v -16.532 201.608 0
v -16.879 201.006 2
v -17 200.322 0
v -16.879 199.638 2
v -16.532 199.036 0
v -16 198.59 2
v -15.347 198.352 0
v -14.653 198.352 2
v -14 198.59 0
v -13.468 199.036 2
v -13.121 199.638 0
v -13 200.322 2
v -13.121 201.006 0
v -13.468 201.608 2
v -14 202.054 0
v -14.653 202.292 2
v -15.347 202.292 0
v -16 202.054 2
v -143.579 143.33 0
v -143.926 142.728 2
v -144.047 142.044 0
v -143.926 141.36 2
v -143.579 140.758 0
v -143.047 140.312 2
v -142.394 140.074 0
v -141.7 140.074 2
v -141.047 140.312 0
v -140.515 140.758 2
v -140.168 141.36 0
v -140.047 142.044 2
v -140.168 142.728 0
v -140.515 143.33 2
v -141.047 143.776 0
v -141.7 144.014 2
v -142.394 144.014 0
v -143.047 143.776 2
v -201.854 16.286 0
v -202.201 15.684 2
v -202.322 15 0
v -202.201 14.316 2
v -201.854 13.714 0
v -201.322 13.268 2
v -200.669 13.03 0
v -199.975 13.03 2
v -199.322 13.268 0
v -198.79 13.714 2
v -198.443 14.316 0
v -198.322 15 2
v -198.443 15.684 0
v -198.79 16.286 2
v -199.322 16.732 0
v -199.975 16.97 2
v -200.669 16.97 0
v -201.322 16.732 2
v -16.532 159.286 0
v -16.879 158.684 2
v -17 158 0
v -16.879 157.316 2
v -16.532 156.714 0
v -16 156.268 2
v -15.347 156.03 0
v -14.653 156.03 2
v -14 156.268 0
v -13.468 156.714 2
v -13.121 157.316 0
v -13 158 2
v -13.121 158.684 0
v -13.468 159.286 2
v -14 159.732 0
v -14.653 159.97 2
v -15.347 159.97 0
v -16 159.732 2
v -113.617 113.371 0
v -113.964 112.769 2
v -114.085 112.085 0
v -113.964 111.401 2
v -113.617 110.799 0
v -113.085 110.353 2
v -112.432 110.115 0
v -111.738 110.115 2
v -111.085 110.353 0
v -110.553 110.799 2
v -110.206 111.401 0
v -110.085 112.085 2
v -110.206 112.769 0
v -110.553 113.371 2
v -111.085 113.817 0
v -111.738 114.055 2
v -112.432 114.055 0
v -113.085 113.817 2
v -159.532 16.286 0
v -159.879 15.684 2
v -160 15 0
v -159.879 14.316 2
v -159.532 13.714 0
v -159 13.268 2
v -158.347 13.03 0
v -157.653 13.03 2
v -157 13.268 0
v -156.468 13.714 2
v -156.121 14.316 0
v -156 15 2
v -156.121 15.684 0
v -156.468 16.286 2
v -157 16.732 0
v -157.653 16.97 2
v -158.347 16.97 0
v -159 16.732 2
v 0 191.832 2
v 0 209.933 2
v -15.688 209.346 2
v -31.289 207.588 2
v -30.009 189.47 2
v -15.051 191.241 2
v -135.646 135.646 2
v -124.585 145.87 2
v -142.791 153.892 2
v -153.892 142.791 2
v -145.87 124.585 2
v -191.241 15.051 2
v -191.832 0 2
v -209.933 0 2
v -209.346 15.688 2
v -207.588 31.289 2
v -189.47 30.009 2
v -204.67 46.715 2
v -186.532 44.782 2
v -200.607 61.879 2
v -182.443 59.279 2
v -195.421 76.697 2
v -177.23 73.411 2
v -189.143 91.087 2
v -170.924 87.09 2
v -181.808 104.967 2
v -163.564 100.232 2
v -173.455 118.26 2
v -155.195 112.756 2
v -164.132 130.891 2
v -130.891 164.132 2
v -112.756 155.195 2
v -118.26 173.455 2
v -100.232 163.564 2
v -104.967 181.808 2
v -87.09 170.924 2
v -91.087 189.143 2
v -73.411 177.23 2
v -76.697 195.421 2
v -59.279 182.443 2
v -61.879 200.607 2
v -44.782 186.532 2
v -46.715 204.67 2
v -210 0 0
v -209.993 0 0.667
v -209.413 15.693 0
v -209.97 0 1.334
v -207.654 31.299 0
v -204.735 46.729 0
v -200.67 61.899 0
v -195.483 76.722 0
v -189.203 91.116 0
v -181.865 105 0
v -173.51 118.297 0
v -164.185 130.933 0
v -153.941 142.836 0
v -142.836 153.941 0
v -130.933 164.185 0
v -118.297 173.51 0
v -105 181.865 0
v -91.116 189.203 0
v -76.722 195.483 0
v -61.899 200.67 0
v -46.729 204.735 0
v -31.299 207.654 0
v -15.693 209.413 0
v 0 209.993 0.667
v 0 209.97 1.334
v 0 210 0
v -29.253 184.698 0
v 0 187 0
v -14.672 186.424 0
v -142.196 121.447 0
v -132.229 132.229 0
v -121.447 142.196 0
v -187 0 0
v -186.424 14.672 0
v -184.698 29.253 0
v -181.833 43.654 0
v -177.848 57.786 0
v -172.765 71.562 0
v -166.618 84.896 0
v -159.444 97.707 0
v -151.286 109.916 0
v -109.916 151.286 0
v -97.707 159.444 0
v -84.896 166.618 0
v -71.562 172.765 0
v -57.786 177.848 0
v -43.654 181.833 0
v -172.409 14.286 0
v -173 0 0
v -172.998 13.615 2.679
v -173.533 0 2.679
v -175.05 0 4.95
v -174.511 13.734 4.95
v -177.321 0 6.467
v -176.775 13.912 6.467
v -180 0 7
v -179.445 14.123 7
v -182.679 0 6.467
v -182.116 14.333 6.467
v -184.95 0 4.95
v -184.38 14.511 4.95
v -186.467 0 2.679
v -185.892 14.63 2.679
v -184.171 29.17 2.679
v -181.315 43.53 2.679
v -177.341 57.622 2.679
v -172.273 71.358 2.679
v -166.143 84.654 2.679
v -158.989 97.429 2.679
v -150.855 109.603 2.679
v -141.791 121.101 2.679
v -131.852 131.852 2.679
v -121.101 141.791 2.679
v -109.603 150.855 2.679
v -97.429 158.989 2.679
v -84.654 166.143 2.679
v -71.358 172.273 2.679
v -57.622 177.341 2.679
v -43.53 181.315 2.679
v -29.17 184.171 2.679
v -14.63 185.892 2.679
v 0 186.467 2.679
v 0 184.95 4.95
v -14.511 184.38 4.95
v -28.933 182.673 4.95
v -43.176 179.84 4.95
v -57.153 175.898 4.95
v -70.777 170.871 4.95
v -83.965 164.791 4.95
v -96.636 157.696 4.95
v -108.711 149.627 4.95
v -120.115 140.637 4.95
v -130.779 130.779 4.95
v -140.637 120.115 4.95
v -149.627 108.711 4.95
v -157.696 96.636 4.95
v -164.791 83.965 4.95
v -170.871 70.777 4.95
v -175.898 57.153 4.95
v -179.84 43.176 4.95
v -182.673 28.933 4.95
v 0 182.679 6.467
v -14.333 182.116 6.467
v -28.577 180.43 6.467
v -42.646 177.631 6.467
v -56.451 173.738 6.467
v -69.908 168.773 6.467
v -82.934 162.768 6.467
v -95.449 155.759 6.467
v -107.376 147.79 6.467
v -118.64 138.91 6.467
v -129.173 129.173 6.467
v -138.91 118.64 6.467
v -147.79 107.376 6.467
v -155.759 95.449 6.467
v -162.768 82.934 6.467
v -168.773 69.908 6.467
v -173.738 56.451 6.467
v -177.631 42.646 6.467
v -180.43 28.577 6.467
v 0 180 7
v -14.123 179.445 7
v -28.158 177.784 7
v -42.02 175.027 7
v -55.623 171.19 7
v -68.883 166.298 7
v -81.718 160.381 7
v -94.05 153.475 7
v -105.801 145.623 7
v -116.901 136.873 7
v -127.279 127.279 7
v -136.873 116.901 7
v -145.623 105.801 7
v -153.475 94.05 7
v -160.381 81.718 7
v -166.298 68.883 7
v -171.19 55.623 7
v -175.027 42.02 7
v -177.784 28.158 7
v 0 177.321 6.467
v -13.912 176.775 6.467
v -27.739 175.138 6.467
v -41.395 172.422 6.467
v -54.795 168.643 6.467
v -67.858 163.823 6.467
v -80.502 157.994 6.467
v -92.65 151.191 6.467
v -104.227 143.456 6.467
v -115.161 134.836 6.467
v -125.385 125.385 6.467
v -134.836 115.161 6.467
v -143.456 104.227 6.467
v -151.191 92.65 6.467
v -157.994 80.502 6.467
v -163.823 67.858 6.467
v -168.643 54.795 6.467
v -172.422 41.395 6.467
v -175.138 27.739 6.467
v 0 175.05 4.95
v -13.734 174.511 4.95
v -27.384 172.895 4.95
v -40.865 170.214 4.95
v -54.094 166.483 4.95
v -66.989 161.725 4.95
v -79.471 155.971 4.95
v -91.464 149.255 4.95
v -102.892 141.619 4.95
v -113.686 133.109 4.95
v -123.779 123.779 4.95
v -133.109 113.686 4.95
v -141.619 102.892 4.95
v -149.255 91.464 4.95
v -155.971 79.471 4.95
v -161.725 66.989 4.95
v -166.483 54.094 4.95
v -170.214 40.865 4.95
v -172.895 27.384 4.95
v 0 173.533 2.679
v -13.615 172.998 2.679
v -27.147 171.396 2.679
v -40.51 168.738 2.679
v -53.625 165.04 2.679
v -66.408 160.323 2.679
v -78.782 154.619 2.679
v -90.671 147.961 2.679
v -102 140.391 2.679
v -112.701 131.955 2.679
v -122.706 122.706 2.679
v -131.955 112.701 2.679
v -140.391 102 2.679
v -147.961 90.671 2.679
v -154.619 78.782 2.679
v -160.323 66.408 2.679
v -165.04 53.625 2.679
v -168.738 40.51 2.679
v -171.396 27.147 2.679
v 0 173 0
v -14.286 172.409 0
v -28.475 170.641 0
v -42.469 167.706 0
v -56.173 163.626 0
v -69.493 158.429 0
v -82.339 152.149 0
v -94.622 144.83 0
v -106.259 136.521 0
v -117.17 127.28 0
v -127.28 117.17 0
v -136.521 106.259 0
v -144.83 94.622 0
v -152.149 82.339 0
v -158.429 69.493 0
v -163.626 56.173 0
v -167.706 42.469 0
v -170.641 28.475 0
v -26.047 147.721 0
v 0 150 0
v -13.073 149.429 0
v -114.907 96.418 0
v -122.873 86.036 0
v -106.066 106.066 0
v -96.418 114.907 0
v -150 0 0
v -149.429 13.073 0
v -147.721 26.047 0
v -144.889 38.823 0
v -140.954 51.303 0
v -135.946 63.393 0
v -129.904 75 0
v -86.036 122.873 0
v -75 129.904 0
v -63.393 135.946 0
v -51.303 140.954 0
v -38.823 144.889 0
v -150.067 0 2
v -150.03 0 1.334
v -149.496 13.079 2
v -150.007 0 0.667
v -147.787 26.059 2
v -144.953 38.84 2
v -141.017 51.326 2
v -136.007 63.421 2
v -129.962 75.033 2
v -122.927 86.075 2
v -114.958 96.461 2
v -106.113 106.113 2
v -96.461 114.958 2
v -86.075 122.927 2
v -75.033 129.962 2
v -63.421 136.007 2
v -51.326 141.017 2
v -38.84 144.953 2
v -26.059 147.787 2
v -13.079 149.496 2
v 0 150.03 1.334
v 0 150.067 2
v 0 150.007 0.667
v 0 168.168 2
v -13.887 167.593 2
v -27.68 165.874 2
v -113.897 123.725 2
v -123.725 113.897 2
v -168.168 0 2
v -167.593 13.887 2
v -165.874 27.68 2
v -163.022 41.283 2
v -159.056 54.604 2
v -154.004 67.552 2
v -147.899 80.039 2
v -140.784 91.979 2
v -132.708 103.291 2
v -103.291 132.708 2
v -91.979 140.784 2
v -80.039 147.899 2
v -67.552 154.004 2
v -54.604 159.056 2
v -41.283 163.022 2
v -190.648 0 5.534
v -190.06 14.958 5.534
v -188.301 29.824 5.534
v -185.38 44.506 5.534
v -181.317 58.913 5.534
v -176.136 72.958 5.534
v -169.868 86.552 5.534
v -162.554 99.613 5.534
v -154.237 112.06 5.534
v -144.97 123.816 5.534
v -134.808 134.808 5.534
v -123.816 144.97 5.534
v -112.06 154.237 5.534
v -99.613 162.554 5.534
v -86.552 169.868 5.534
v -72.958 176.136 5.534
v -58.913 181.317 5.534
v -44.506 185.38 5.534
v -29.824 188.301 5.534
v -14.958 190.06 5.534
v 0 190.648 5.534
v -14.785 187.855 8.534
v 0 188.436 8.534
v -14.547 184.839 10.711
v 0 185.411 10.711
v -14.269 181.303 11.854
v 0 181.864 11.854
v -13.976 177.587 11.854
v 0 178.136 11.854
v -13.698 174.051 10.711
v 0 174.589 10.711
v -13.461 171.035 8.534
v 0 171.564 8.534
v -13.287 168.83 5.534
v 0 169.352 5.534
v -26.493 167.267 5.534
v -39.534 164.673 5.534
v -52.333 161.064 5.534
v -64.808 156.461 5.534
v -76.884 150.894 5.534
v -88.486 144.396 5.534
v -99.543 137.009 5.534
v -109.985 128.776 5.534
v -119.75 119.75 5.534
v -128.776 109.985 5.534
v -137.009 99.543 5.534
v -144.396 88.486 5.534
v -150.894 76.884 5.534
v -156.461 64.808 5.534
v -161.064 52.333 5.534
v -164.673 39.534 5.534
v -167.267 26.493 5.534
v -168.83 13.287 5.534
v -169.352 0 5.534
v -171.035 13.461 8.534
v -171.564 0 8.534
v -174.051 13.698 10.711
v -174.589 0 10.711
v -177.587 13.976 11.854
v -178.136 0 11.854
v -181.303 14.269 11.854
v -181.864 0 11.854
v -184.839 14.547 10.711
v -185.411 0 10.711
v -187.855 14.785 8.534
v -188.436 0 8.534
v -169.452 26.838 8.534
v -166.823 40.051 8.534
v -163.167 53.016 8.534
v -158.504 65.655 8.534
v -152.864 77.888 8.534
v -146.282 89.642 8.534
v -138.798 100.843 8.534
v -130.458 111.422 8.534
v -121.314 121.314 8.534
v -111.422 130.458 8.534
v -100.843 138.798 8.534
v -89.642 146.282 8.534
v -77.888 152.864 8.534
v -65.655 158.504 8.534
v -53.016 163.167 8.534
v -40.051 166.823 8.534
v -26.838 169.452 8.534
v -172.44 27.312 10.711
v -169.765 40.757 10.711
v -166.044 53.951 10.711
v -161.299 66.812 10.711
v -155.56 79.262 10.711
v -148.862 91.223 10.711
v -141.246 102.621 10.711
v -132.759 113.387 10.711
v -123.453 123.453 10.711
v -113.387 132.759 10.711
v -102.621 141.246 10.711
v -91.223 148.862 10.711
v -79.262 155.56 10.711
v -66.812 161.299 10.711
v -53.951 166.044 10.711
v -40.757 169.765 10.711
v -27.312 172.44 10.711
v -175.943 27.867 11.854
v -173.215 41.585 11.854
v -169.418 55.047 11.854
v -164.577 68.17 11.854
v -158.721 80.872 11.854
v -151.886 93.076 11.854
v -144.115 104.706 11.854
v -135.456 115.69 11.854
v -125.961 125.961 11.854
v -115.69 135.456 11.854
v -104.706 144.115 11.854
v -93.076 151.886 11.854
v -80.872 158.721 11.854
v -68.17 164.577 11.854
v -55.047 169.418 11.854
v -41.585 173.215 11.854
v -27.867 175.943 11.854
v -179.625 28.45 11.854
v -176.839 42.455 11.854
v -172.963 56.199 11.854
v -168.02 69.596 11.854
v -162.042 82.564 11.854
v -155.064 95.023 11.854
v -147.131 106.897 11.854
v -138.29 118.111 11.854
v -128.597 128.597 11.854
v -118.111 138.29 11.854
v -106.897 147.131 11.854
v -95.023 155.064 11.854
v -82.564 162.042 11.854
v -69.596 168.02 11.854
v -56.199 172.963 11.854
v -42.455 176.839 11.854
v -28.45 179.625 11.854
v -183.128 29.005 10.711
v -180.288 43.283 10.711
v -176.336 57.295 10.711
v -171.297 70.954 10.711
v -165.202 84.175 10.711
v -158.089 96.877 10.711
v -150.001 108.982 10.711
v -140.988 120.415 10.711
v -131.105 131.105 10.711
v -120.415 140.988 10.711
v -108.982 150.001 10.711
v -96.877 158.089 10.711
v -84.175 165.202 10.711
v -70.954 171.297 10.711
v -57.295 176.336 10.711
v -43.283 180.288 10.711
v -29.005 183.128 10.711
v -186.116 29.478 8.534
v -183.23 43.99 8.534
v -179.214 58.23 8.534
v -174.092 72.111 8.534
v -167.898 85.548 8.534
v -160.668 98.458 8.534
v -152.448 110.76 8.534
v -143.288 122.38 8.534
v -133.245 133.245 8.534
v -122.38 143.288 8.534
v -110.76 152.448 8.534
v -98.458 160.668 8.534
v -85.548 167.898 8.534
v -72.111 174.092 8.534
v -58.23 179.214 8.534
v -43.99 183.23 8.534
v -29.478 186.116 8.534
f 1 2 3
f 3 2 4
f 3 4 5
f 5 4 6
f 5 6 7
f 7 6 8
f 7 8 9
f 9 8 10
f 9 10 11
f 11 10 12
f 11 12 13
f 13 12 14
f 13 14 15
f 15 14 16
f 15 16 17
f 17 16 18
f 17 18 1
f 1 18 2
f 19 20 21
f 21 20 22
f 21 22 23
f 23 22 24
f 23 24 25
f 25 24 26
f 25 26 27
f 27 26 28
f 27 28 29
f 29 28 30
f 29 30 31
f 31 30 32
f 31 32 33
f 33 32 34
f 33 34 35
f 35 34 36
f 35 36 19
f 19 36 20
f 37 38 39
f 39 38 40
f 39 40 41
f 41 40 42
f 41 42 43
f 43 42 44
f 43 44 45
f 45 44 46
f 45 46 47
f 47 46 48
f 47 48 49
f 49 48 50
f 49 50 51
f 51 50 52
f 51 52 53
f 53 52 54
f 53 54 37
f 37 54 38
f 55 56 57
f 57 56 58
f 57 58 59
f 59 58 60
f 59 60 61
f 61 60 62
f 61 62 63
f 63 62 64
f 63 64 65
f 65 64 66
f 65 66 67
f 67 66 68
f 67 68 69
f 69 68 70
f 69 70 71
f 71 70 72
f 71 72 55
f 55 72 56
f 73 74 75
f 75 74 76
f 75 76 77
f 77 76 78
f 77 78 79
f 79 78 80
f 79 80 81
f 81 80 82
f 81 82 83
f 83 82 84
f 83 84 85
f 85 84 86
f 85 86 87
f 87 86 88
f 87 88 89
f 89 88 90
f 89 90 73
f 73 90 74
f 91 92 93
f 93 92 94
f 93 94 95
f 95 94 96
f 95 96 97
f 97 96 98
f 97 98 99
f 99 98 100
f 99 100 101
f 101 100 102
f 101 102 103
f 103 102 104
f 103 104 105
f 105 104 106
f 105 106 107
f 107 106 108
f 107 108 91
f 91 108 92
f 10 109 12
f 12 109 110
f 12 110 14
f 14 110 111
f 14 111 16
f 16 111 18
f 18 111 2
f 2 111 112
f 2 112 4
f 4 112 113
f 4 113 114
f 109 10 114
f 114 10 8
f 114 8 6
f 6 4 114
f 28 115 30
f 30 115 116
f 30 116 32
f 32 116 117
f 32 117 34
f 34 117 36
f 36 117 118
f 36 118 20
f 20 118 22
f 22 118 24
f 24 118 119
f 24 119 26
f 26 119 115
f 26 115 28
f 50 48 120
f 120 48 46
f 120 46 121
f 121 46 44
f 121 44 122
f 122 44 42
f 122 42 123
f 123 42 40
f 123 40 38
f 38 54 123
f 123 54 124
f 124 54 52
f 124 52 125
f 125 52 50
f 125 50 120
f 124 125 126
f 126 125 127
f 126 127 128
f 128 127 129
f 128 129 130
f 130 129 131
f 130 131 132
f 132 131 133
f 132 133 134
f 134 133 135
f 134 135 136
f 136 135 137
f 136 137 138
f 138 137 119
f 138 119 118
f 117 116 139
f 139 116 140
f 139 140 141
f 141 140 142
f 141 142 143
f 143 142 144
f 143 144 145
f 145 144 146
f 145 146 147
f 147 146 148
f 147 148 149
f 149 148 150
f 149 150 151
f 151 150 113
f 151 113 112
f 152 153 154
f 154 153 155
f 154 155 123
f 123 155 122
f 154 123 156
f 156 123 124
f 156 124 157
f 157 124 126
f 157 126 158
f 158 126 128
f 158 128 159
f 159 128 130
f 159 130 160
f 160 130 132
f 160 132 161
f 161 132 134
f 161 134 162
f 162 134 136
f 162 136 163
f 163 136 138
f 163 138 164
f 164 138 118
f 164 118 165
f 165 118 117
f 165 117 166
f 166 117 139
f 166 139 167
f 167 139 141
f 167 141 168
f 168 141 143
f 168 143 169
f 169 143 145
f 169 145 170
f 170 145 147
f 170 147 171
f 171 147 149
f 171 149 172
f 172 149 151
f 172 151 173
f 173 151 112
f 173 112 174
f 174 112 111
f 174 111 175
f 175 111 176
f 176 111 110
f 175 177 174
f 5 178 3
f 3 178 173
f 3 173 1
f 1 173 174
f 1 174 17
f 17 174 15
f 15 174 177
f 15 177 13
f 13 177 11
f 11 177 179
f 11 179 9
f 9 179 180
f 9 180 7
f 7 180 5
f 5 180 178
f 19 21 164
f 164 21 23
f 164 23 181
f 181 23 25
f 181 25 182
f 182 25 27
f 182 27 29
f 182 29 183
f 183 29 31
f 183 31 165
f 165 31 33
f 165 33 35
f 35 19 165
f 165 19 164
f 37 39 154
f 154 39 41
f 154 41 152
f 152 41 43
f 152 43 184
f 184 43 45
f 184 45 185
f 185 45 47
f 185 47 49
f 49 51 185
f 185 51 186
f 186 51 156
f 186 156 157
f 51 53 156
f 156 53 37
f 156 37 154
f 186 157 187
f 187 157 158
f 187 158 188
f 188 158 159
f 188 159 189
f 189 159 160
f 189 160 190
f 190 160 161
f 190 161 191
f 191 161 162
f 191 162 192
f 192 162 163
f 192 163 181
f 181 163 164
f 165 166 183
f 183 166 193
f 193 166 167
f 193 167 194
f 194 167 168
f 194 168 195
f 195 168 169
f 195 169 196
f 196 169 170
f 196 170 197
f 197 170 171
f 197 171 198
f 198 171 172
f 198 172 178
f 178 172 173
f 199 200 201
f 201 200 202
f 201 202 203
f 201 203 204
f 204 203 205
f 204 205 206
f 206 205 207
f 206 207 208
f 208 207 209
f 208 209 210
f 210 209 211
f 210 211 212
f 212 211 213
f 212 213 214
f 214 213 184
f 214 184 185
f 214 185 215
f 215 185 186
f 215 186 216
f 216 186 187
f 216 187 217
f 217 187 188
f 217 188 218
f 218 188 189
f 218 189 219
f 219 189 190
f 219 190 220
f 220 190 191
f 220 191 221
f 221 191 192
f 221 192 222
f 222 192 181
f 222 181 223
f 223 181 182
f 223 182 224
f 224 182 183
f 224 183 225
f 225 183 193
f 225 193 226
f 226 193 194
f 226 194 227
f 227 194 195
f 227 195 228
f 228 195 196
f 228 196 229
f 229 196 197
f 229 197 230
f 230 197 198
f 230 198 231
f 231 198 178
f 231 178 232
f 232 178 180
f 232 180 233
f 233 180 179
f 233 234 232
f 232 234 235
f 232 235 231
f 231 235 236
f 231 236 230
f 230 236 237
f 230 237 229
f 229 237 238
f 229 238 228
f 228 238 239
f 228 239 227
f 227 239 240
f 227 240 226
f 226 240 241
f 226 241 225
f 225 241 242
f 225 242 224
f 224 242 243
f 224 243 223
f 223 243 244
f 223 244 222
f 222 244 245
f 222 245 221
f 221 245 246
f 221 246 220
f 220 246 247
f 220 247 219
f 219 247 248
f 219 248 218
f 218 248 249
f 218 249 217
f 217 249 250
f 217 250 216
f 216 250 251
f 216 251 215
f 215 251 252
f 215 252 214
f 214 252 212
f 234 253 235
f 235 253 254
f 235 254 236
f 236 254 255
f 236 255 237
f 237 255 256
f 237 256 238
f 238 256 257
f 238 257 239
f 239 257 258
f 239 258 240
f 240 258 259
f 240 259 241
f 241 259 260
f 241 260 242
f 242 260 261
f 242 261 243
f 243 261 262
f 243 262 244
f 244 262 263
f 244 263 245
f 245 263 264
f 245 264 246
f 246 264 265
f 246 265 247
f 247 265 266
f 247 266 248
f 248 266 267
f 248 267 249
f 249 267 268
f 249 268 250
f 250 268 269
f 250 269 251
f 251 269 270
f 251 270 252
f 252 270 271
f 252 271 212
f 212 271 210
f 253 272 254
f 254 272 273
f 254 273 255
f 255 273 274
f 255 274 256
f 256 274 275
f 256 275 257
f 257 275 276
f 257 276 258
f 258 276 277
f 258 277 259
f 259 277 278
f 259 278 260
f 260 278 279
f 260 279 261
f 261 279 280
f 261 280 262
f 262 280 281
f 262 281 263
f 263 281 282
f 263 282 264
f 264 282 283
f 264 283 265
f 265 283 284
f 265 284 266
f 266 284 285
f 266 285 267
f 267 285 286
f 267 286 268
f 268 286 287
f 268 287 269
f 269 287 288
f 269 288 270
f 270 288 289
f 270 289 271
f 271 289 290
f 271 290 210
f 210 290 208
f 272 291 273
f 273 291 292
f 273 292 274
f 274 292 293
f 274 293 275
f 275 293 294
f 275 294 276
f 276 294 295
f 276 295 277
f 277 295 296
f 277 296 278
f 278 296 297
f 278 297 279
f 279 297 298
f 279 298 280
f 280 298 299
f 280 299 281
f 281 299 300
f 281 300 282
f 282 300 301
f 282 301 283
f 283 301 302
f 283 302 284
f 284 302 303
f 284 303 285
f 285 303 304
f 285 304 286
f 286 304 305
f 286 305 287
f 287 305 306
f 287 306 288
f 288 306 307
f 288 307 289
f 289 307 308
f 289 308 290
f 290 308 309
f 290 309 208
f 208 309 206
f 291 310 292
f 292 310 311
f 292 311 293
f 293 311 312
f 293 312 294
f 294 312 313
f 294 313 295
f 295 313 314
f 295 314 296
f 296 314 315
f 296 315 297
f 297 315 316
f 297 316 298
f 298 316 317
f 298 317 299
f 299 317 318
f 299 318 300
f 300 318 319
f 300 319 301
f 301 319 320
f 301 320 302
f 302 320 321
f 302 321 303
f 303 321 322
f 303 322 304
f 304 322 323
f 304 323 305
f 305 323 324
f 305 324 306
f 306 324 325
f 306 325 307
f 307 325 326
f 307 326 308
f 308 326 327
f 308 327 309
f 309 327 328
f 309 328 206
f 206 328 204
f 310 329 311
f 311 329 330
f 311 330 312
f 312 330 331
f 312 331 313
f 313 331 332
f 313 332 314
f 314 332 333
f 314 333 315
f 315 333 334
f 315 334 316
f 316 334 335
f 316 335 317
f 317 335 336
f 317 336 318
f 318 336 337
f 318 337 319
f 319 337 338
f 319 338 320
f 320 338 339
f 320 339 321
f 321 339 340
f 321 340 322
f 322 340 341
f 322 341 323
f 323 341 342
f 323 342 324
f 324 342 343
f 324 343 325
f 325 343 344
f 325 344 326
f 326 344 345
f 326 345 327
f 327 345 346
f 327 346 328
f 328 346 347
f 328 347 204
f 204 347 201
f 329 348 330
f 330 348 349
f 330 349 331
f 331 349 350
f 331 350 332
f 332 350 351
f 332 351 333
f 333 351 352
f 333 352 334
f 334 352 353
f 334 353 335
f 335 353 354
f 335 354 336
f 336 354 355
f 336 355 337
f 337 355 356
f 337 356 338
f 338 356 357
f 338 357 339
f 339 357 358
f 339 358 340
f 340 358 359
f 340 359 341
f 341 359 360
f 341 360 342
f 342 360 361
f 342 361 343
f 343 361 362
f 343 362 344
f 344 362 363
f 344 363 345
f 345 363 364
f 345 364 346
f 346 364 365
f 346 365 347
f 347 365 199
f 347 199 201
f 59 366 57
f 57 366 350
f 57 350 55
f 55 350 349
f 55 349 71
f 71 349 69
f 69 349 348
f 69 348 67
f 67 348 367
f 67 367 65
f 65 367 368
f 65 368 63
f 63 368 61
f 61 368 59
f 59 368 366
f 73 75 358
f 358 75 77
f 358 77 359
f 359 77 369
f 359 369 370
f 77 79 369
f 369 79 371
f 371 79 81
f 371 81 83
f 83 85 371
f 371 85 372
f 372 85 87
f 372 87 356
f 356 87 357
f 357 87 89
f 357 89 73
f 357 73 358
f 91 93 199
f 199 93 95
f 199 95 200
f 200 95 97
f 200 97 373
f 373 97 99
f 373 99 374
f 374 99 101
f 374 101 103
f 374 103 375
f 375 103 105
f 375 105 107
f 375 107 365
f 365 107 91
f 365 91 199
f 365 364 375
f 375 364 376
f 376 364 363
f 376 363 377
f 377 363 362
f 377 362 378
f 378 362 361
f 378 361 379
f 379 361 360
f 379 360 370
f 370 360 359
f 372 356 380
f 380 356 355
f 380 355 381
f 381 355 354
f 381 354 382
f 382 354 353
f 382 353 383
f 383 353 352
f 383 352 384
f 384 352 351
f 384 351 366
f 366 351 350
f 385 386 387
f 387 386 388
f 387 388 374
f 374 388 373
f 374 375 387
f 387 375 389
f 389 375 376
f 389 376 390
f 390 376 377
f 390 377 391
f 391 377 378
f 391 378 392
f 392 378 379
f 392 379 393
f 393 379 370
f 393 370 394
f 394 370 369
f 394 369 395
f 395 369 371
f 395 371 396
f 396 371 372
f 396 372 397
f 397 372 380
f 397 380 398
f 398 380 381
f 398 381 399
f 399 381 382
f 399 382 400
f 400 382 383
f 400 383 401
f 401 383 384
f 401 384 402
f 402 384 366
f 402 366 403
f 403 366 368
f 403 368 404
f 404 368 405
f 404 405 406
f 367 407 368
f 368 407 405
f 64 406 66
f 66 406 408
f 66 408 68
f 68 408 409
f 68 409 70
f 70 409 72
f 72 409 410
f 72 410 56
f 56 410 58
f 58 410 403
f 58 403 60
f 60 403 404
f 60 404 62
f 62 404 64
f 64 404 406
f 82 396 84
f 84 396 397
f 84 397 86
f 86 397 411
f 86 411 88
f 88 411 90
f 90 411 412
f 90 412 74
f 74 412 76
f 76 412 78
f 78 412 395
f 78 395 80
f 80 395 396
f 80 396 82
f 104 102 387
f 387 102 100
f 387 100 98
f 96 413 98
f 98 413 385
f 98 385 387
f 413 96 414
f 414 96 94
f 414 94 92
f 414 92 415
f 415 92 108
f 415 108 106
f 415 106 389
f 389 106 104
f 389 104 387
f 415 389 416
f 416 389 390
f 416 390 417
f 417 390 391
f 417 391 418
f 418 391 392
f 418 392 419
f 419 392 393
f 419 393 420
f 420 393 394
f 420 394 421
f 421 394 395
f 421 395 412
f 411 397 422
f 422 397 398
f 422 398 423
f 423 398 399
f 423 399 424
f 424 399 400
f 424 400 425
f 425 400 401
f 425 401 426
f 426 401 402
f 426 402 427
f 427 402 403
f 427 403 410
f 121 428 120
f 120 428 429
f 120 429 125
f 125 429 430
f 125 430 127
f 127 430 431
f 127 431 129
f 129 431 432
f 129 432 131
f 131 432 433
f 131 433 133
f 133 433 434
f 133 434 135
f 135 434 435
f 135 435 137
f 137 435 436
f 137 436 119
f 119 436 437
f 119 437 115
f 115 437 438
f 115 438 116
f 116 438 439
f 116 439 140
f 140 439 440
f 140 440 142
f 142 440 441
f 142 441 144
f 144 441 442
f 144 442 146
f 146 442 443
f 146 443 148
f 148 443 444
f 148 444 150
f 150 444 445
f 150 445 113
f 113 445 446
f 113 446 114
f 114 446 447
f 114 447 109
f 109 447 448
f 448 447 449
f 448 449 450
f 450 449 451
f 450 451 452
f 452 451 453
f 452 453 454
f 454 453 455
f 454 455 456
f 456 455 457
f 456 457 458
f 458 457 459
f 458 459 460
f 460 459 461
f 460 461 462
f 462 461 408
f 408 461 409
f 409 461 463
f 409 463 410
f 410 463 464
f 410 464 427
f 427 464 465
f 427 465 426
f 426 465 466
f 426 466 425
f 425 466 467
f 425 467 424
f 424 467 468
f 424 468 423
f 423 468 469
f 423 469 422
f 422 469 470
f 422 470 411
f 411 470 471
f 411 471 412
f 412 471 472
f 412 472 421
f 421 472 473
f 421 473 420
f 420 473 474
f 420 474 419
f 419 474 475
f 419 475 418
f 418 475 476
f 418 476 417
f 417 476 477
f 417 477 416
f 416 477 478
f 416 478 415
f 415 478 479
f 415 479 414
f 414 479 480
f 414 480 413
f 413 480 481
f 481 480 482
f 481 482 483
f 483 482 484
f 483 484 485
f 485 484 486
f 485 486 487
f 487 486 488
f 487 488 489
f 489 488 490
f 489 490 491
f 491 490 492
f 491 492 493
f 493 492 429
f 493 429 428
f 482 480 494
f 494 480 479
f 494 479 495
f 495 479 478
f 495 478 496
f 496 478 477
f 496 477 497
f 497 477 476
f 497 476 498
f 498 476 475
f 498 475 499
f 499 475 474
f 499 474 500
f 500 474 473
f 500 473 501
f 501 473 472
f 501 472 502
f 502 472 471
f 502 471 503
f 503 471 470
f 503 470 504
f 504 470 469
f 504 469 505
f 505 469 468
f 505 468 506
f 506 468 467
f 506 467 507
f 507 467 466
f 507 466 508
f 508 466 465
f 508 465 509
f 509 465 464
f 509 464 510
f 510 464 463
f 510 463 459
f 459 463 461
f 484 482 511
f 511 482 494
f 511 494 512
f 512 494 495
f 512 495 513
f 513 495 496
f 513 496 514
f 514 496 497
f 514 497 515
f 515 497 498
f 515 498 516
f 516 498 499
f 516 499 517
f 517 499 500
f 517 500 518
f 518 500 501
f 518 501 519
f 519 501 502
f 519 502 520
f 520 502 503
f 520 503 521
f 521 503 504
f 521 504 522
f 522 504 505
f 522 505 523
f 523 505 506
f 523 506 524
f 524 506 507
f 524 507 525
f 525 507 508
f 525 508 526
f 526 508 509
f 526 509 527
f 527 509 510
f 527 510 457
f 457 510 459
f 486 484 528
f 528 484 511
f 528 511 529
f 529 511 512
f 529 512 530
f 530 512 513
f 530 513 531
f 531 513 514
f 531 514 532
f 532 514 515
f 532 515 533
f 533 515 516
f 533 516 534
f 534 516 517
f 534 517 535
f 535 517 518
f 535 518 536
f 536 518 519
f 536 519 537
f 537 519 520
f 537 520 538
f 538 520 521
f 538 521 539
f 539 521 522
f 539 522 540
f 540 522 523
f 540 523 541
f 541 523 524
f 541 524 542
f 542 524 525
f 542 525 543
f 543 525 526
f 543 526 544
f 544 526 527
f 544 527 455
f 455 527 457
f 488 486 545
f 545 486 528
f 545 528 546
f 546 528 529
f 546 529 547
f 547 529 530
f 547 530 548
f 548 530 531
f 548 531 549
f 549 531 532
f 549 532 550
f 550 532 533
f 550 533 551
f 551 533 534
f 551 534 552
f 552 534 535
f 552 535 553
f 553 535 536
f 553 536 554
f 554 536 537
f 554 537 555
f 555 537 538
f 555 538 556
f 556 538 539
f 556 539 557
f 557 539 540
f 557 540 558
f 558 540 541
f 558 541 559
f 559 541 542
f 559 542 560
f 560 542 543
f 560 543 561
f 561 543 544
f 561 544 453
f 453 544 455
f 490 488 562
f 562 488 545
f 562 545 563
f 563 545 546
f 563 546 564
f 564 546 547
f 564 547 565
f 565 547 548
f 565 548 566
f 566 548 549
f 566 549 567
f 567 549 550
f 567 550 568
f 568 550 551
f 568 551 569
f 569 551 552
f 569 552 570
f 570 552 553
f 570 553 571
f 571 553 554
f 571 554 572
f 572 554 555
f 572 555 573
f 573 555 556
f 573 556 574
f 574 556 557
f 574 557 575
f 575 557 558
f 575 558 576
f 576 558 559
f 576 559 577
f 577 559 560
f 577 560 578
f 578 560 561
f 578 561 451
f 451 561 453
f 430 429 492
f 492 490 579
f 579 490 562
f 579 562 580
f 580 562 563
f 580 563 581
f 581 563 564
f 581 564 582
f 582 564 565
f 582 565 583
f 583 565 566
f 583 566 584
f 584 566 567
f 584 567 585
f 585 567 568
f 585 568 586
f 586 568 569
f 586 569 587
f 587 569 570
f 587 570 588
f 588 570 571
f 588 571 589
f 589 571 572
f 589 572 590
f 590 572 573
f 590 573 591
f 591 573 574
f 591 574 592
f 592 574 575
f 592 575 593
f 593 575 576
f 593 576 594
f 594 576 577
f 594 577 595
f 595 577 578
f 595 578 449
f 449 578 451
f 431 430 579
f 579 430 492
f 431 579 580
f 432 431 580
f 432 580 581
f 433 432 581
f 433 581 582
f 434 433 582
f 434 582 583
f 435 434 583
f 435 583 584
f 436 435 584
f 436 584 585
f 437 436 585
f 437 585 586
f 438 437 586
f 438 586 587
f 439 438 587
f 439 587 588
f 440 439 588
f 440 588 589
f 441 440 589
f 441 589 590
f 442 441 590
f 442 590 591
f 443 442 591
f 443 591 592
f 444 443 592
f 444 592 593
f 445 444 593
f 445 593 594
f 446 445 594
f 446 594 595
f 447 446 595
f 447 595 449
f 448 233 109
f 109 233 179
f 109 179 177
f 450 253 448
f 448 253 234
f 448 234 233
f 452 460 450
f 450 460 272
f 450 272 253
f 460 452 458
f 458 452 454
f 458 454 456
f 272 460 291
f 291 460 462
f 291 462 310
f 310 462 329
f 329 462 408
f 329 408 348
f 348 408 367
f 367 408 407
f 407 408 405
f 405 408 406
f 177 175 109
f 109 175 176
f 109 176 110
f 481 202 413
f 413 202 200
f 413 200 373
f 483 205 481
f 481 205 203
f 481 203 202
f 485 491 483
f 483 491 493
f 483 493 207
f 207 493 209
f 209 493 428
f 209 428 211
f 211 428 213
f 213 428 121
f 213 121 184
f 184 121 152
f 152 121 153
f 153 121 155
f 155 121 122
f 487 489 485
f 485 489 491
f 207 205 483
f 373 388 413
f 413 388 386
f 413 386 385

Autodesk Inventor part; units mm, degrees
ref_plane "YZ Plane" through (0, 0, 0) normal (1, 0, 0) x (0, 1, 0)
ref_plane "XZ Plane" through (0, 0, 0) normal (0, 1, 0) x (-1, 0, 0)
ref_plane "XY Plane" through (0, 0, 0) normal (0, 0, 1) x (1, 0, 0)
sketch "Skizze1" plane through (0, 0, 0) normal (0, 0, 1) x (1, 0, 0)
  arc A0 (0, 180) -> (-180, 0) centre (0, 0) ccw
  line L0 (-260.7351, 0) -> (43.4558, 0) projected
  line L1 (0, -43.4558) -> (0, 260.7351) projected
  dimension "d0" = 180
  dimension "d1" = 90
sketch "Skizze2" plane through (0, 0, 0) normal (0, 1, 0) x (-1, 0, 0)
  line L0 (0, -42) -> (0, 42) projected
  circle A0 centre (180, 0) radius 7
  line L1 (252, 0) -> (-42, 0) projected
  circle A1 centre (180, 0) radius 12
  line L2 (191.9553, 0) -> (168, 0)
  line L3 (173, 0) -> (160, 0)
  line L4 (173, 2) -> (173, 0)
  line L5 (187, 0) -> (200, 0)
  line L6 (187, 2) -> (187, 0)
  circle A2 centre (180, 0) radius 30
  line L7 (187, 2) -> (209.9333, 2)
  line L8 (173, 2) -> (150.0667, 2)
  point P0 (0, 0)
  point P1 (173, 0)
  point P2 (168, 0)
  point P3 (192, 0)
  point P4 (191.8322, 2)
  point P5 (168.1678, 2)
  point P6 (150, 0)
  point P7 (210, 0)
  dimension "d5" = 24
  dimension "d3" = 180
  dimension "d4" = 14
  dimension "d16" = 60
  dimension "d17" = 2
  dimension "d18" = 23
  dimension "d19" = 7
sweep "Sweeping1" add profiles "Skizze2" path "Skizze1" path curves A0 contours L6 L7 A1 L1 | A0 L4 L8 A1 L7 L6 | L1 A1 L8 L4 | L1 A2 L8 A1 | A1 L7 A2 L1
sketch "Skizze7" plane through (-168.1678, 0, 2) normal (0, 0, 1) x (1, 0, 0)
  line L0 (18.1678, 0) -> (18.1678, -3) projected
  line L1 (0, 0) -> (18.1011, 0) projected
  line L2 (168.1678, 150) -> (171.1678, 150) projected
  line L3 (168.1678, 168.1678) -> (168.1678, 150.0667) projected
  line L4 (168.1678, 210) -> (171.1678, 210) projected
  arc A0 (168.1678, 150.0667) -> (18.1011, 0) centre (168.1678, 0) ccw projected
  circle A1 centre (168.1678, 0) radius 168 projected
  line L5 (-41.8322, 0) -> (-41.8322, -3) projected
  point P0 (10.1678, 15)
  point P1 (56.0828, 112.085)
  point P2 (153.1678, 158)
  dimension "d36" = 8
  dimension "d37" = 15
  dimension "d38" = 8
  dimension "d39" = 15
  dimension "d41" = 97.915
  dimension "d42" = 97.915
hole "Bohrung1" at (-158, 15, 2) at (-112.085, 112.085, 2) at (-15, 158, 2) direction (0, 0, -1) diameter 4 depth 8
sketch "Skizze8" plane through (-209.9333, 0, 2) normal (0, 0, 1) x (1, 0, 0)
  line L0 (-0.0667, 0) -> (-0.0667, -3) projected
  line L1 (0, 0) -> (18.1011, 0) projected
  line L2 (209.9333, 209.9333) -> (209.9333, 191.8322) projected
  line L3 (209.9333, 210) -> (212.9333, 210) projected
  arc A0 (209.9333, 168.1678) -> (41.7654, 0) centre (209.9333, 0) ccw projected
  circle A1 centre (209.9333, 0) radius 200.8827
  point P0 (209.9333, 0)
  point P1 (9.6113, 15)
  point P2 (67.8861, 142.044)
  point P3 (194.9333, 200.3219)
  dimension "d51" = 15
  dimension "d52" = 15
  dimension "d54" = 142.044
  dimension "d59" = 401.7655
  dimension "d60" = 142.0471
hole "Bohrung3" at (-200.3219, 15, 2) at (-142.0471, 142.044, 2) at (-15, 200.3219, 2) direction (0, 0, -1) diameter 4 depth 8
properties part number "ph-l_mk1"
